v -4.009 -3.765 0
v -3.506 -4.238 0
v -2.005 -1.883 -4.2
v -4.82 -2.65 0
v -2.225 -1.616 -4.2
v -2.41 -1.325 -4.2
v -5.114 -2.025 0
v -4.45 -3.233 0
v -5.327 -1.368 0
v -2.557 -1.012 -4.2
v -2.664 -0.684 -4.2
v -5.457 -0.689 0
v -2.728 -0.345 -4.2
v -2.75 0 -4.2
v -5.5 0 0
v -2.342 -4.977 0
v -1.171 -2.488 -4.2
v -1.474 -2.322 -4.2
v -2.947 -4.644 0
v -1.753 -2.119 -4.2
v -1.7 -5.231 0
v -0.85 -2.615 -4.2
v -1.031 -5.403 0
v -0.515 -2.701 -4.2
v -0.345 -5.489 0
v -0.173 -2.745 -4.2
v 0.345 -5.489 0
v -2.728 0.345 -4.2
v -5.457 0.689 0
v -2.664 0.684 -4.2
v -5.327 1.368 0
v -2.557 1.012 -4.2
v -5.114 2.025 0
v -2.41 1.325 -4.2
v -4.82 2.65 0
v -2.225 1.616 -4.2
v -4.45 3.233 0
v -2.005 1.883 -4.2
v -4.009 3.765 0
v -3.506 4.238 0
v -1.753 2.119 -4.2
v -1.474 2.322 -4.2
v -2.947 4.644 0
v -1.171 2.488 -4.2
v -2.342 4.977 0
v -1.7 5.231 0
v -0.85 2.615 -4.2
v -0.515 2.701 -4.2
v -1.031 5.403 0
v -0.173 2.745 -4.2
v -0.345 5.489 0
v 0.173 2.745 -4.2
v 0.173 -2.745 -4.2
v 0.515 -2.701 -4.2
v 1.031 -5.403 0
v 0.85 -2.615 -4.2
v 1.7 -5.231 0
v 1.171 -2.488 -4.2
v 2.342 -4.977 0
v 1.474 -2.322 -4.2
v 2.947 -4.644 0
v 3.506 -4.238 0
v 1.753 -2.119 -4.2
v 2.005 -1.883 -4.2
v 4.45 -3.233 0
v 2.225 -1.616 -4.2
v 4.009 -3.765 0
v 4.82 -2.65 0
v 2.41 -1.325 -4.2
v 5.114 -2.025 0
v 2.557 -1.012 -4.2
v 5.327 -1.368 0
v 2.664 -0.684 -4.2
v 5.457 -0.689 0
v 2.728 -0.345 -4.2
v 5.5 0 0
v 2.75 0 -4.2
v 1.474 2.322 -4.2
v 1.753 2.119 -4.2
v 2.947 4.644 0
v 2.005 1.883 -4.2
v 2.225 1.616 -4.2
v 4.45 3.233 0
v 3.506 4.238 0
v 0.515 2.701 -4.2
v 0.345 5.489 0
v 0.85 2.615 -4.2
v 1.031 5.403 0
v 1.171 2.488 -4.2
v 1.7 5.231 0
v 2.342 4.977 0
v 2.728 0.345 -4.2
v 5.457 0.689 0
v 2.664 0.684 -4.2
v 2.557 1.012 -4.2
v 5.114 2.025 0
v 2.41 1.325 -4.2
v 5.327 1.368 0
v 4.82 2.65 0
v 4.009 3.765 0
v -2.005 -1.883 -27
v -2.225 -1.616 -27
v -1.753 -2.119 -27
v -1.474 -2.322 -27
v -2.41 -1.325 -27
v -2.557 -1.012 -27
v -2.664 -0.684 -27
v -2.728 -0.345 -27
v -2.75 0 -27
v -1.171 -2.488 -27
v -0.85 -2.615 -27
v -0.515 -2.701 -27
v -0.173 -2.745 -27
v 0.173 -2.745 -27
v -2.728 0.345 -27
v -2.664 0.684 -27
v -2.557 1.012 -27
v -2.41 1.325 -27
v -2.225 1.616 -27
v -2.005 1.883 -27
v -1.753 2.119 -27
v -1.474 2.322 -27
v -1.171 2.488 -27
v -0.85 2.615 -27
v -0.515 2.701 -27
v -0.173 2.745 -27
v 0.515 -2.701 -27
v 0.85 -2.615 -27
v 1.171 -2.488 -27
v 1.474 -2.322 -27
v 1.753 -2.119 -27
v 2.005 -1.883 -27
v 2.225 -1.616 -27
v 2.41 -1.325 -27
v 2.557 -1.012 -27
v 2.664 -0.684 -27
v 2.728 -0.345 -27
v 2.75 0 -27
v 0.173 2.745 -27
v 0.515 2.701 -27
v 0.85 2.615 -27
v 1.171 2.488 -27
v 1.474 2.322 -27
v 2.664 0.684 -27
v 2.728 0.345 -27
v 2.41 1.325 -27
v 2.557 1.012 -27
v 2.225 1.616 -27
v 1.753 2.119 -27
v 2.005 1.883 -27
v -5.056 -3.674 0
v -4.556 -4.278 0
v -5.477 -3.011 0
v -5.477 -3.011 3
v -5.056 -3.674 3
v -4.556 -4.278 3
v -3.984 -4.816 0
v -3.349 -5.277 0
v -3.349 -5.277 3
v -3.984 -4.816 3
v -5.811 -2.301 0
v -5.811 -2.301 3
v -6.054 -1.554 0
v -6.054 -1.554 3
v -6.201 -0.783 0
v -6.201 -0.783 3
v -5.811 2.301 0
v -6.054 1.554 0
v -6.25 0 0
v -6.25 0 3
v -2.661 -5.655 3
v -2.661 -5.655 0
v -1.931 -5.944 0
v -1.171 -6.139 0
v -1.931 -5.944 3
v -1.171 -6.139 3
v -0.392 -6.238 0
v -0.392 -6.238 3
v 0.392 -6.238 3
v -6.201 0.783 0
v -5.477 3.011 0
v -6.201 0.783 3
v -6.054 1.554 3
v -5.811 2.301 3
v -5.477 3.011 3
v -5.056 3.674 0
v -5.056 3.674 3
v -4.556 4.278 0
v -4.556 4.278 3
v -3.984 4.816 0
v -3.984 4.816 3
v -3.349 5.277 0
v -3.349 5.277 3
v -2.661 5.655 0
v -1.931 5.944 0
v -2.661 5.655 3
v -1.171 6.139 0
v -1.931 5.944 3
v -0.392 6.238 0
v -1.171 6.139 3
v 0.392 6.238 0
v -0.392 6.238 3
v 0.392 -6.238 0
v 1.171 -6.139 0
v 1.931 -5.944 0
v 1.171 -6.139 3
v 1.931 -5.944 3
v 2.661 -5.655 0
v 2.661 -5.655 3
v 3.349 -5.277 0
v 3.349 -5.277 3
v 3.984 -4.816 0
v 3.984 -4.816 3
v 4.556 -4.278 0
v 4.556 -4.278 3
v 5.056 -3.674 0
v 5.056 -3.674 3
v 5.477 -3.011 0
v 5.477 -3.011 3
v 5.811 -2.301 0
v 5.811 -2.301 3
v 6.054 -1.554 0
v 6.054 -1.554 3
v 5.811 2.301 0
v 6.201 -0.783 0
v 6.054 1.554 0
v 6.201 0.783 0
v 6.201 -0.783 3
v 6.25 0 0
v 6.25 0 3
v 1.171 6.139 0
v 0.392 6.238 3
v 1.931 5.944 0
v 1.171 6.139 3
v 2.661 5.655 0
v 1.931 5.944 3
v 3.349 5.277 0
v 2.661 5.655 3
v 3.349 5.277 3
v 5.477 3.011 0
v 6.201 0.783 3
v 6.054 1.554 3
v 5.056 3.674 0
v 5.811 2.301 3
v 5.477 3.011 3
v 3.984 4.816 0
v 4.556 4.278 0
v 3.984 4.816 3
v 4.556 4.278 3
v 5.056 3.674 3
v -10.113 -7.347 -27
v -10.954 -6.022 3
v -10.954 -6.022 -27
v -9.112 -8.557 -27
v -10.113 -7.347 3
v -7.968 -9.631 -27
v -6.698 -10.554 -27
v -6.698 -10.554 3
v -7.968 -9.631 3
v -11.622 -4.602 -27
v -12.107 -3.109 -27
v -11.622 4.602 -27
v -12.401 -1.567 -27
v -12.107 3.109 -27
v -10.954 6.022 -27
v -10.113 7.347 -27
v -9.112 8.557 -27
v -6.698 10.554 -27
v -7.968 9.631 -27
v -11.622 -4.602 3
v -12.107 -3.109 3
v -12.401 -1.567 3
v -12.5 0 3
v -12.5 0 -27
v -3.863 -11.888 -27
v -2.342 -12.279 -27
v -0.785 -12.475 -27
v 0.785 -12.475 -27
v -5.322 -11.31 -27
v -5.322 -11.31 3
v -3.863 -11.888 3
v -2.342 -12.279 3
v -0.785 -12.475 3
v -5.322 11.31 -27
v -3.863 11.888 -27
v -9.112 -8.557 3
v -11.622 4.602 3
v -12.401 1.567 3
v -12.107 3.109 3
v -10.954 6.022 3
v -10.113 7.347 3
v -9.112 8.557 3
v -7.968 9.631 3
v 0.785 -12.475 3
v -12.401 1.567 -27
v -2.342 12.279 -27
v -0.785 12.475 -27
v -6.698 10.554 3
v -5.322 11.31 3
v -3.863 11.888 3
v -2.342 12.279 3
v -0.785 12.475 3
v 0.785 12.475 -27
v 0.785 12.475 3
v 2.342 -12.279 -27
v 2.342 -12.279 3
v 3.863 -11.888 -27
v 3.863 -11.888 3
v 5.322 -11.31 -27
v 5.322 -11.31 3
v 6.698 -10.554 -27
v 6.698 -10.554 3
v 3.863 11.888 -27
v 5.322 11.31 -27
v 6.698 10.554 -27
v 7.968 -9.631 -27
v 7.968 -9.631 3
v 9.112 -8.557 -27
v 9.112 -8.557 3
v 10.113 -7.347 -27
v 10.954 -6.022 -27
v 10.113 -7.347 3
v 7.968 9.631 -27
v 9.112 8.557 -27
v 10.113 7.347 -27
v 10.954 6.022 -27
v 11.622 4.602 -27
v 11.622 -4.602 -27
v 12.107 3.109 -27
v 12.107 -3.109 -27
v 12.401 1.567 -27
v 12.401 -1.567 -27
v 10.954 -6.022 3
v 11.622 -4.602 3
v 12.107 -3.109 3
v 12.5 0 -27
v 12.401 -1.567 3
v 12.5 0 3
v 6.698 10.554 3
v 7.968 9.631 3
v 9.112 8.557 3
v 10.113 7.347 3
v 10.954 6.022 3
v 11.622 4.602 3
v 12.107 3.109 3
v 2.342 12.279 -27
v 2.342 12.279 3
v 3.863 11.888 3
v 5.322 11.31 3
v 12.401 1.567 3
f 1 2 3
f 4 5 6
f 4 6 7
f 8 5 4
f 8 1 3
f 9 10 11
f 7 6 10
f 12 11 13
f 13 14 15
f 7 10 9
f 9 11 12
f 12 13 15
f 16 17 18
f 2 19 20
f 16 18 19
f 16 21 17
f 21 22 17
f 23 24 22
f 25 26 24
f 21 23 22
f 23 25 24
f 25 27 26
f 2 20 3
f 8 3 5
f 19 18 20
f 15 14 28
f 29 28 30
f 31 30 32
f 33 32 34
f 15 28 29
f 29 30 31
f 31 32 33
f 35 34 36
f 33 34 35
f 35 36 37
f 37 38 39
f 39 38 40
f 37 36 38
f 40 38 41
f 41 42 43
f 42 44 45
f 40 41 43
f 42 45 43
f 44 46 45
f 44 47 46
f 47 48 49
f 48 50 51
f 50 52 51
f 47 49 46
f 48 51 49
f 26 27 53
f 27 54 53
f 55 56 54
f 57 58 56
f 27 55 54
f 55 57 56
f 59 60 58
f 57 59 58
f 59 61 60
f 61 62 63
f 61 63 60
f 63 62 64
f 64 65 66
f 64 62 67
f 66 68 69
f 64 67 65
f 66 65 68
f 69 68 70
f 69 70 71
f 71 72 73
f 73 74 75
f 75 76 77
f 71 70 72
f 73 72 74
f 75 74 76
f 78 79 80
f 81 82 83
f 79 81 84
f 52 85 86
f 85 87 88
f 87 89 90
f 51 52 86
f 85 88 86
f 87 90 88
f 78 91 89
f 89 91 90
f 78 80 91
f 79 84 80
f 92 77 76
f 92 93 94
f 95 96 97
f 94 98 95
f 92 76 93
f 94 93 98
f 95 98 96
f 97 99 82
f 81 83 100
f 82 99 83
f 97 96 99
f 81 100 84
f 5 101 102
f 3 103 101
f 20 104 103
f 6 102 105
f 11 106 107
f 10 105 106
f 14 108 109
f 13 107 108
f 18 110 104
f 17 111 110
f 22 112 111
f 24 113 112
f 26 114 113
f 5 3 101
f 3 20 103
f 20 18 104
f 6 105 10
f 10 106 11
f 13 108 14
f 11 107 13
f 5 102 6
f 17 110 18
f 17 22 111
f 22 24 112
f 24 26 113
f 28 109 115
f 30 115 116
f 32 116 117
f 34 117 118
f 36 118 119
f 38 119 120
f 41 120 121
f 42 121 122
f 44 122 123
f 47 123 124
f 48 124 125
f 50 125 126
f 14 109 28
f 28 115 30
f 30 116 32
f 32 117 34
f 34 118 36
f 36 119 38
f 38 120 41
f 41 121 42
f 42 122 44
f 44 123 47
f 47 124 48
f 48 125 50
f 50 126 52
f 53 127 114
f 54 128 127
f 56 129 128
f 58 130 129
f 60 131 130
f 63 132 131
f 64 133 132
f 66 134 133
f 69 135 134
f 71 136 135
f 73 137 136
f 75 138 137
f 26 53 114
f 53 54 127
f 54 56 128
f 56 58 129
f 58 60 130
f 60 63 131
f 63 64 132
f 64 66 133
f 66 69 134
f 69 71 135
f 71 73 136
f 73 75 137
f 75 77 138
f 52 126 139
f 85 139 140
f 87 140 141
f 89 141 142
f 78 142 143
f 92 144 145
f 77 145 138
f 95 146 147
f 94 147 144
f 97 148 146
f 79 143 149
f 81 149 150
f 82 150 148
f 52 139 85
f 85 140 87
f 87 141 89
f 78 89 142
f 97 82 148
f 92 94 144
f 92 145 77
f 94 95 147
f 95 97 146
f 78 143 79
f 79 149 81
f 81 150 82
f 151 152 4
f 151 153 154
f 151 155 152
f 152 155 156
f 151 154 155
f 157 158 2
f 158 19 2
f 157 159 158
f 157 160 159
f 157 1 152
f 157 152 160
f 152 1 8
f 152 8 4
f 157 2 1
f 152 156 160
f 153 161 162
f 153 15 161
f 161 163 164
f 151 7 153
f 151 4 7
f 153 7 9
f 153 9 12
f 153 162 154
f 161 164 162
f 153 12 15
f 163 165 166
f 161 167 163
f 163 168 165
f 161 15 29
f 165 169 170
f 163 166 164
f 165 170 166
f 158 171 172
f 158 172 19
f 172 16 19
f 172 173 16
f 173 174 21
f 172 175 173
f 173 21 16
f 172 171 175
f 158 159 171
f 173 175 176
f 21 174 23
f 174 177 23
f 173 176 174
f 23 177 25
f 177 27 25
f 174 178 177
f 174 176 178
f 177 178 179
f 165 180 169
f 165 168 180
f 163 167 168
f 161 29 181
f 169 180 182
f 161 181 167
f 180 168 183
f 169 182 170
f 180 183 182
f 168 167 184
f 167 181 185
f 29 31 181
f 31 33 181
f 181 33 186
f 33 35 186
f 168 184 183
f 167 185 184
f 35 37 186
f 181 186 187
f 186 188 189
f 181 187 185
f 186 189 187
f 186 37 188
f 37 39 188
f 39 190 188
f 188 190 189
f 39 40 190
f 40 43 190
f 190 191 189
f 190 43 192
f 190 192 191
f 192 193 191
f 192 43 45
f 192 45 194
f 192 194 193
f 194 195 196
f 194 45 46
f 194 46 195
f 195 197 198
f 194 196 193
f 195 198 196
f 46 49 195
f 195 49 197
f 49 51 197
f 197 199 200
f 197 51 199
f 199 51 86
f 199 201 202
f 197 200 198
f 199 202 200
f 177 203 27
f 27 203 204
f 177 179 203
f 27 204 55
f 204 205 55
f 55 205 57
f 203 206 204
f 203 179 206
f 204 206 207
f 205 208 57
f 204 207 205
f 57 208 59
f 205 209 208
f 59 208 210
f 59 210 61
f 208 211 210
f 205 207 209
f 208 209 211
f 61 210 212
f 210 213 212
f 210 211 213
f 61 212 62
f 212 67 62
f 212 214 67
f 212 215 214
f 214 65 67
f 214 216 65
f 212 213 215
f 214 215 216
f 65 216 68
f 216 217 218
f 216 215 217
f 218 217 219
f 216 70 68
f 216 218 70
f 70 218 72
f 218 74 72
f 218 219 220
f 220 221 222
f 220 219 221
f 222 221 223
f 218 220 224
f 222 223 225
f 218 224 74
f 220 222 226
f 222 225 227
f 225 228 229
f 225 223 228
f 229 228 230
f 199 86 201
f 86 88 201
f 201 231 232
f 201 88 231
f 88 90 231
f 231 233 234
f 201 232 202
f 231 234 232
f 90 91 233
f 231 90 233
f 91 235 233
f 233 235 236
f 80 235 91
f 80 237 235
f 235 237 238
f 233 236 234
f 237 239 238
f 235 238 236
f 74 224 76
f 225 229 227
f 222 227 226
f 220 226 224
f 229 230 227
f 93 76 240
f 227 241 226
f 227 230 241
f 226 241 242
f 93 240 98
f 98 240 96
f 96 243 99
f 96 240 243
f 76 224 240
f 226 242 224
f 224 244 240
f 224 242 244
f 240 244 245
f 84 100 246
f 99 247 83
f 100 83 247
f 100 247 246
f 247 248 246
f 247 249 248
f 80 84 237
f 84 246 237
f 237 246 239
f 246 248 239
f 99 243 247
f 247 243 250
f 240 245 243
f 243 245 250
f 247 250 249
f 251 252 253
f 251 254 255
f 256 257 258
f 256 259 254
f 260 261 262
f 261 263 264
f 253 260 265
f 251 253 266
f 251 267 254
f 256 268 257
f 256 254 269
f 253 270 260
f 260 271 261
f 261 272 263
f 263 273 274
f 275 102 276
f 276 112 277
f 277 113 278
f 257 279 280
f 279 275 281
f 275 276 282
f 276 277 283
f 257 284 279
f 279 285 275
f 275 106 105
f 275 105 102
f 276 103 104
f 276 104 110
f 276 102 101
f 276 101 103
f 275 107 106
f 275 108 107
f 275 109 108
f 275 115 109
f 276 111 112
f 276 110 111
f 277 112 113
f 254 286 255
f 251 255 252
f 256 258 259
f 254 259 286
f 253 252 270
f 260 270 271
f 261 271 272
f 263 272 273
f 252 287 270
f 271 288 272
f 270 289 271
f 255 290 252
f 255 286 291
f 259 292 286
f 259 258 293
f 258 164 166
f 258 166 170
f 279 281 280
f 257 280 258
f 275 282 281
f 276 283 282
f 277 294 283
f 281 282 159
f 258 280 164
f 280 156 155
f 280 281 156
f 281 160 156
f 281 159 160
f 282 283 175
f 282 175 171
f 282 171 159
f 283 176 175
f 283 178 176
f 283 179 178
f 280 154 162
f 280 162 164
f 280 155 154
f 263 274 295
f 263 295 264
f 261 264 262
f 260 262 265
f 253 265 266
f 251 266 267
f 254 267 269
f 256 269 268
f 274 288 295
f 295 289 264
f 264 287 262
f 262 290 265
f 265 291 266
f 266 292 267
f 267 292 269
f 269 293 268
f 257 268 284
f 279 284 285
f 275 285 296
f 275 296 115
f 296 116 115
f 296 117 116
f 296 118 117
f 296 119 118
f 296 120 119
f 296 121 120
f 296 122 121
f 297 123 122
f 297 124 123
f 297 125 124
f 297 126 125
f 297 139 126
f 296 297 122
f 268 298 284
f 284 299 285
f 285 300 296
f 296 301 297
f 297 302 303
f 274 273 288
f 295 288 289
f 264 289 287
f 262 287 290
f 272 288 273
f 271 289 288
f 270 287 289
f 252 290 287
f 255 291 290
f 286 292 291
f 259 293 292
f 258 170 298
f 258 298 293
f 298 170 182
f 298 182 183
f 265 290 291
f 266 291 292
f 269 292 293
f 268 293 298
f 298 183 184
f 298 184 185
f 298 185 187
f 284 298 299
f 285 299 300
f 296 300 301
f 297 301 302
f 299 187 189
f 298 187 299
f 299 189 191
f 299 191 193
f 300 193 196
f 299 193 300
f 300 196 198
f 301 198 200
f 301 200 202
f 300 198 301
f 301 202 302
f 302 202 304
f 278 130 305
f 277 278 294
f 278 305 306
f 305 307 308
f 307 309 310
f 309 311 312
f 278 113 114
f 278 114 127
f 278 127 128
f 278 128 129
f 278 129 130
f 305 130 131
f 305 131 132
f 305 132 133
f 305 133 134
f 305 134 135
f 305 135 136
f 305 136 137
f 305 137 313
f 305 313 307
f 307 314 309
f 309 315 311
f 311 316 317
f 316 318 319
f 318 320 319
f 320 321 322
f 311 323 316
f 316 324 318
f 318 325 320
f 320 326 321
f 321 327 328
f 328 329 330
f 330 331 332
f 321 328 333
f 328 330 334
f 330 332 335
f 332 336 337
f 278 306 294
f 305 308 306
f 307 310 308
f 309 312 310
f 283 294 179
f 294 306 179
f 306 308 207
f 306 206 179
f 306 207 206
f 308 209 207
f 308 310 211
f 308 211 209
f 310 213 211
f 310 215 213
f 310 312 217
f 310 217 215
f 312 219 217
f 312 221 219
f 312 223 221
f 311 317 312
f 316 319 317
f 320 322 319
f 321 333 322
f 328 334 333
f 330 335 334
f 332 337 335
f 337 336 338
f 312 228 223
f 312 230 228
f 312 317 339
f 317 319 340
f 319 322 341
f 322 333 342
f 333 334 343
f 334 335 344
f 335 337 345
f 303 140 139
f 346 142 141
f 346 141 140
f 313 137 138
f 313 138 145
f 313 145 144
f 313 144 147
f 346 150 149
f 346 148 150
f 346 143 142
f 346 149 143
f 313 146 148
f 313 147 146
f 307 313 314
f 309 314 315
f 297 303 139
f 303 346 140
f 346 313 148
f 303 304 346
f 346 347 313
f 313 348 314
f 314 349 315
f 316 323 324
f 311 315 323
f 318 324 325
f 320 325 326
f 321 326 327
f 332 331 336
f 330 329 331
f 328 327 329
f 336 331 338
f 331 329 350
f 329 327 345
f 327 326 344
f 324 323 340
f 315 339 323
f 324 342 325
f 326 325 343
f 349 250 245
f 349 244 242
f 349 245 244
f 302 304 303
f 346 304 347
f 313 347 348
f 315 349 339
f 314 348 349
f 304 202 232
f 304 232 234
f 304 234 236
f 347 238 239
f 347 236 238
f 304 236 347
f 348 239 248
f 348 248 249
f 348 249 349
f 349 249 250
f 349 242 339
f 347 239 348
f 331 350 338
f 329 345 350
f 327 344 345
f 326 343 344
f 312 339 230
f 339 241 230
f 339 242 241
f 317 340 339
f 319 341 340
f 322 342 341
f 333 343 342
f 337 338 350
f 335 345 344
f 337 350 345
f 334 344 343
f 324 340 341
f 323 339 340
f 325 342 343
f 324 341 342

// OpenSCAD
$fn = 50;


difference() {
	union() {
		translate(v = [0, 0, -27.0000000000]) {
			cylinder(h = 30, r = 12.5000000000);
		}
	}
	union() {
		translate(v = [0, 0, 0]) {
			rotate(a = [0, 0, 0]) {
				difference() {
					union() {
						translate(v = [0, 0, -30.0000000000]) {
							cylinder(h = 30, r = 2.2500000000);
						}
						translate(v = [0, 0, -4.2000000000]) {
							cylinder(h = 4.2000000000, r1 = 2.7500000000, r2 = 5.5000000000);
						}
						translate(v = [0, 0, -30.0000000000]) {
							cylinder(h = 30, r = 2.7500000000);
						}
						translate(v = [0, 0, -30.0000000000]) {
							cylinder(h = 30, r = 2.2500000000);
						}
					}
					union();
				}
			}
		}
		#cylinder(h = 3, r = 6.2500000000);
	}
}
